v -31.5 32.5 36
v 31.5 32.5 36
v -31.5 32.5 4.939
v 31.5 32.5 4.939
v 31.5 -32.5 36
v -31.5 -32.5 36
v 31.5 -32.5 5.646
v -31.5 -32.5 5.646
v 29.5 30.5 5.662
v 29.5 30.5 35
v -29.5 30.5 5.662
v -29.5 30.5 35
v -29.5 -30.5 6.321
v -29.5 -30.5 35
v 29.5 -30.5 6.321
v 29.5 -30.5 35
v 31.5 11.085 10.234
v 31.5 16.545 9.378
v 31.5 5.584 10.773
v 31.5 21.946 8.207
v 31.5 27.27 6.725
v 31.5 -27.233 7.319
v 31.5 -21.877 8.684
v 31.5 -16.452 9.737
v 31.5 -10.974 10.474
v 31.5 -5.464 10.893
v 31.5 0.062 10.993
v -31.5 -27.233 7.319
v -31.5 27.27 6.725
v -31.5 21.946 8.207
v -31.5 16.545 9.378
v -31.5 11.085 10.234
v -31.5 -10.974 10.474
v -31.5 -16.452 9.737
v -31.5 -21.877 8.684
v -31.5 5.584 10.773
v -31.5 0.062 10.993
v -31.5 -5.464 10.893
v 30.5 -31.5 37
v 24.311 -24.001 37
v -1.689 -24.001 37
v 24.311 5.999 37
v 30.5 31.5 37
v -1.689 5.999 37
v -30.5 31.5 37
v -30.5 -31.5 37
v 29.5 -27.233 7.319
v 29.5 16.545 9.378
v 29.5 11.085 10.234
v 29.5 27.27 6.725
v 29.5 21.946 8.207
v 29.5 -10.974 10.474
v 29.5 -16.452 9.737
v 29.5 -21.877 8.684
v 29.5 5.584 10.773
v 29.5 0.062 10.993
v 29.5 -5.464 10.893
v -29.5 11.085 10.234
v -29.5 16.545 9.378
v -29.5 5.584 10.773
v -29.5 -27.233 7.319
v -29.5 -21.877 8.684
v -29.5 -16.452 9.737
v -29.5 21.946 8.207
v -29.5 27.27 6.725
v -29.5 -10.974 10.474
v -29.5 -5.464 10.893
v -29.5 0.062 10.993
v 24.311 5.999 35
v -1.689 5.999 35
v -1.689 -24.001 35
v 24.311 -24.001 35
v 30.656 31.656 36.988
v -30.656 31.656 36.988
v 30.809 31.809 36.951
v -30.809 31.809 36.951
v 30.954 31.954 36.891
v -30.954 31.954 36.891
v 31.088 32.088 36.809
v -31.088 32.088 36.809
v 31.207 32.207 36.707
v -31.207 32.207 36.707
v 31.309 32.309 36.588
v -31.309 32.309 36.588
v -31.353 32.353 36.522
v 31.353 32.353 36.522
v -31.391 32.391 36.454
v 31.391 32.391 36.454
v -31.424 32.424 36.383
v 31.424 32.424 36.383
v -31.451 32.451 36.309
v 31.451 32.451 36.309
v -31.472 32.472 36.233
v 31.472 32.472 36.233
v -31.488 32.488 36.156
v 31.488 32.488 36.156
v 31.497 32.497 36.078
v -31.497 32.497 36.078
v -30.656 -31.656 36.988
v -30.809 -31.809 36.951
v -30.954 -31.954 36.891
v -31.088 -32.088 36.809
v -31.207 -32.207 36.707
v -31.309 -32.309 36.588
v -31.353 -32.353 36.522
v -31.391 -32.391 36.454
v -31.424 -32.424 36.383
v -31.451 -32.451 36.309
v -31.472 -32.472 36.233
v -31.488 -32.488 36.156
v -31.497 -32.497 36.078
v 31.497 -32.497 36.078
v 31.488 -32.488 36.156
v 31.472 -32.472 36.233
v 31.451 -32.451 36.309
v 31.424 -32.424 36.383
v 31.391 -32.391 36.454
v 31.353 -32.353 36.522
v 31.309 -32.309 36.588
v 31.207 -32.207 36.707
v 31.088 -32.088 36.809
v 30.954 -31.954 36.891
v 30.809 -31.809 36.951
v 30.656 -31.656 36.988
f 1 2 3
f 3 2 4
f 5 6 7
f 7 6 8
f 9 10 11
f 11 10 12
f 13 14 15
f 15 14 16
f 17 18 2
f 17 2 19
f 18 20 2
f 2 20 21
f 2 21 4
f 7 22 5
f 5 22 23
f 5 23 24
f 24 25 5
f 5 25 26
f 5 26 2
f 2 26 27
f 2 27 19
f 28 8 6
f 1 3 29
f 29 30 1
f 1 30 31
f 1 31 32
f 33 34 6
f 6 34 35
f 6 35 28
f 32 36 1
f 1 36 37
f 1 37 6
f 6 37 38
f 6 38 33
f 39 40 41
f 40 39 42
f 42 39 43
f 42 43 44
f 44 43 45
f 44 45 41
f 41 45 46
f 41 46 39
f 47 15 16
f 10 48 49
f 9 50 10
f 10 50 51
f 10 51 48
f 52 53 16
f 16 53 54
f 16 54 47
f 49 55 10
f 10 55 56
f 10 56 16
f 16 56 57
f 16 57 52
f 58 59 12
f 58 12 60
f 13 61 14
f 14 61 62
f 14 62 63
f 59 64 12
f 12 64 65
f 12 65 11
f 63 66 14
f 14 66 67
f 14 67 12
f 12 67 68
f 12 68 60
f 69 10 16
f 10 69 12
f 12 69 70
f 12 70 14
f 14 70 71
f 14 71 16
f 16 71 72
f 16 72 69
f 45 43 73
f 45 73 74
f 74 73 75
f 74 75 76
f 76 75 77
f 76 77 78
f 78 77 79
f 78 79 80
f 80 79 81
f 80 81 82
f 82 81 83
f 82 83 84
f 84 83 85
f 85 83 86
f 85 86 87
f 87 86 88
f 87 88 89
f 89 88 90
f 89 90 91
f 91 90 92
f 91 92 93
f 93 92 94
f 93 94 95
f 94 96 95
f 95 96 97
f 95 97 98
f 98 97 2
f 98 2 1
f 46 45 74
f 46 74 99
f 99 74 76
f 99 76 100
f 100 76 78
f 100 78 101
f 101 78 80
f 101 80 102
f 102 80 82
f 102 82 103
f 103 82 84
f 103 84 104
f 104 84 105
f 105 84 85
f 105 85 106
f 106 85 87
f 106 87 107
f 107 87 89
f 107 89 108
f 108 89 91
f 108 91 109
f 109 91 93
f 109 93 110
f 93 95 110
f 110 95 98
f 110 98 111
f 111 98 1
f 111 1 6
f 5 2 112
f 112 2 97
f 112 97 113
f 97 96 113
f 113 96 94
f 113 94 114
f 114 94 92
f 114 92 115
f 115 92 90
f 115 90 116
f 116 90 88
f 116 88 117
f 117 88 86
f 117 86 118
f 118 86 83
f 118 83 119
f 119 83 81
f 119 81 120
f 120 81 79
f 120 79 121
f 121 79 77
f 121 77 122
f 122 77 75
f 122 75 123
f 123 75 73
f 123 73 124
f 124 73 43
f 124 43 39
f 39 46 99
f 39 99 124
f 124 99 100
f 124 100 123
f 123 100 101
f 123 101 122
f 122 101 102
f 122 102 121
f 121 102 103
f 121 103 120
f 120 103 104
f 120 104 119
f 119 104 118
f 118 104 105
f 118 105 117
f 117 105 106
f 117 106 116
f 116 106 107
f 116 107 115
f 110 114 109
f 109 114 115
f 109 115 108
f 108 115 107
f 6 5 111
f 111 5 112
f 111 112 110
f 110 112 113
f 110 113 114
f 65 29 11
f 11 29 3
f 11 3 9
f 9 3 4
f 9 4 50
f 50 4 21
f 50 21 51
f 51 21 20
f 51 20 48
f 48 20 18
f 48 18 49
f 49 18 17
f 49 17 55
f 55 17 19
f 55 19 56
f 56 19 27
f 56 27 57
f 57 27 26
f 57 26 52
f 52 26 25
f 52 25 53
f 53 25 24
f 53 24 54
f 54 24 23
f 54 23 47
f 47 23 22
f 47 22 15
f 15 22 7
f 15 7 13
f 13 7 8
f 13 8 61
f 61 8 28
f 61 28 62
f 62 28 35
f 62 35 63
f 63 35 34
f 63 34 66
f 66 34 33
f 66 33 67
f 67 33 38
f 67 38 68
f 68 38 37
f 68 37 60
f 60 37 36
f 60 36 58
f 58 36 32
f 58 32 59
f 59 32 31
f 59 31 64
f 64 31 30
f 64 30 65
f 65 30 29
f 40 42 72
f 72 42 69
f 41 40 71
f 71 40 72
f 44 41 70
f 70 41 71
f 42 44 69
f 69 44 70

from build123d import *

# Parameters (mm, degrees)
ESQUISSE1_W             = 59
ESQUISSE1_H             = 61
BOSS_EXTRU_1_DEPTH      = 35
COQUE1_T                = 2
CONG_1_R                = 1
ESQUISSE2_W             = 28.002662862
ESQUISSE2_H             = 31.996726322
ENL_V_MAT_EXTRU_1_DEPTH = 10
EMPREINTE1_START        = -31.5
EMPREINTE1_DEPTH        = 63
ENL_V_START             = -70
ENL_V_MAT_EXTRU_2_DEPTH = 70
ESQUISSE6_W             = 30.866772499
ESQUISSE6_H             = 33.57762677
BOSS_EXTRU_2_DEPTH      = 2
ESQUISSE5_W             = 26
ESQUISSE5_H             = 30
ENL_V_MAT_EXTRU_3_DEPTH = 12


# Read off the part's stored shape, not the designer's step: Empreinte1
with BuildPart() as part:
    # Esquisse1 → Boss.-Extru.1 (new body)
    with BuildSketch(Plane.XY):
        Rectangle(ESQUISSE1_W, ESQUISSE1_H)
    extrude(amount=BOSS_EXTRU_1_DEPTH)

    # Coque1
    coque1_openings = [part.faces().sort_by_distance(p)[0] for p in [
        (0, 0, 0),
    ]]
    offset(amount=COQUE1_T, openings=coque1_openings, kind=Kind.INTERSECTION)

    # Congé1
    # the kernel refuses this fillet: 1 mm, written as the material it takes off along each edge
    with BuildSketch(Plane(origin=(-31.5, 35, 37), x_dir=(0, 0, -1), z_dir=(0, -1, 0)), Plane(origin=(31.5, -35, 37), x_dir=(0, 0, -1), z_dir=(0, 1, 0))) as cong_1_piece_1:
        with BuildLine():
            CenterArc((CONG_1_R, CONG_1_R), CONG_1_R, 180, 90)
            Line((0, CONG_1_R), (0, 0))
            Line((0, 0), (CONG_1_R, 0))
        make_face()
    extrude(amount=70, mode=Mode.SUBTRACT)
    with BuildSketch(Plane(origin=(-34, -32.5, 37), x_dir=(0, 0, -1), z_dir=(1, 0, 0)), Plane(origin=(34, 32.5, 37), x_dir=(0, 0, -1), z_dir=(-1, 0, 0))) as cong_1_piece_2:
        with BuildLine():
            CenterArc((CONG_1_R, CONG_1_R), CONG_1_R, 180, 90)
            Line((0, CONG_1_R), (0, 0))
            Line((0, 0), (CONG_1_R, 0))
        make_face()
    extrude(amount=68, mode=Mode.SUBTRACT)

    # Esquisse2 → Enlèv. mat.-Extru.1 (cut)
    with BuildSketch(Plane.XY.offset(37)):
        with Locations((12.997811926, -9.999029903)):
            Rectangle(ESQUISSE2_W, ESQUISSE2_H)
    extrude(amount=-ENL_V_MAT_EXTRU_1_DEPTH, mode=Mode.SUBTRACT)

    # Empreinte1 outline → Empreinte1 (cut)
    with BuildSketch(Plane.YZ.offset(EMPREINTE1_START)):
        with BuildLine():
            Line((-32.5, 5.64631504), (-32.5, 2.461866011))
            ThreePointArc((-32.5, 2.461866011), (0.066578718, 7.992846788), (32.5, 1.728105633))
            Line((32.5, 1.728105633), (32.5, 4.938683524))
            ThreePointArc((32.5, 4.938683524), (0.062060176, 10.993081225), (-32.5, 5.64631504))
        make_face()
    extrude(amount=EMPREINTE1_DEPTH, mode=Mode.SUBTRACT)

    # Esquisse3 → Enlèv. mat.-Extru.2 (cut)
    with BuildSketch(Plane(origin=(31.5, 0, 0), x_dir=(0, 0, -1), z_dir=(1, 0, 0)).offset(ENL_V_START)):
        with BuildLine():
            Line((-1.728105633, 32.5), (0, 32.5))
            Line((0, 32.5), (0, -32.5))
            Line((0, -32.5), (-2.461866011, -32.5))
            ThreePointArc((-2.461866011, -32.5), (-7.992846788, 0.066578718), (-1.728105633, 32.5))
        make_face()
    extrude(amount=ENL_V_MAT_EXTRU_2_DEPTH, mode=Mode.SUBTRACT)

    # Esquisse6 → Boss.-Extru.2 (add)
    with BuildSketch(Plane.XY.offset(37)):
        with Locations((12.6560139, -10.131028325)):
            Rectangle(ESQUISSE6_W, ESQUISSE6_H)
    extrude(amount=-BOSS_EXTRU_2_DEPTH)

    # Esquisse5 → Enlèv. mat.-Extru.3 (cut)
    with BuildSketch(Plane.XY.offset(37)):
        with Locations((11.311132579, -9.001205365)):
            Rectangle(ESQUISSE5_W, ESQUISSE5_H)
    extrude(amount=-ENL_V_MAT_EXTRU_3_DEPTH, mode=Mode.SUBTRACT)


solid = part.part
